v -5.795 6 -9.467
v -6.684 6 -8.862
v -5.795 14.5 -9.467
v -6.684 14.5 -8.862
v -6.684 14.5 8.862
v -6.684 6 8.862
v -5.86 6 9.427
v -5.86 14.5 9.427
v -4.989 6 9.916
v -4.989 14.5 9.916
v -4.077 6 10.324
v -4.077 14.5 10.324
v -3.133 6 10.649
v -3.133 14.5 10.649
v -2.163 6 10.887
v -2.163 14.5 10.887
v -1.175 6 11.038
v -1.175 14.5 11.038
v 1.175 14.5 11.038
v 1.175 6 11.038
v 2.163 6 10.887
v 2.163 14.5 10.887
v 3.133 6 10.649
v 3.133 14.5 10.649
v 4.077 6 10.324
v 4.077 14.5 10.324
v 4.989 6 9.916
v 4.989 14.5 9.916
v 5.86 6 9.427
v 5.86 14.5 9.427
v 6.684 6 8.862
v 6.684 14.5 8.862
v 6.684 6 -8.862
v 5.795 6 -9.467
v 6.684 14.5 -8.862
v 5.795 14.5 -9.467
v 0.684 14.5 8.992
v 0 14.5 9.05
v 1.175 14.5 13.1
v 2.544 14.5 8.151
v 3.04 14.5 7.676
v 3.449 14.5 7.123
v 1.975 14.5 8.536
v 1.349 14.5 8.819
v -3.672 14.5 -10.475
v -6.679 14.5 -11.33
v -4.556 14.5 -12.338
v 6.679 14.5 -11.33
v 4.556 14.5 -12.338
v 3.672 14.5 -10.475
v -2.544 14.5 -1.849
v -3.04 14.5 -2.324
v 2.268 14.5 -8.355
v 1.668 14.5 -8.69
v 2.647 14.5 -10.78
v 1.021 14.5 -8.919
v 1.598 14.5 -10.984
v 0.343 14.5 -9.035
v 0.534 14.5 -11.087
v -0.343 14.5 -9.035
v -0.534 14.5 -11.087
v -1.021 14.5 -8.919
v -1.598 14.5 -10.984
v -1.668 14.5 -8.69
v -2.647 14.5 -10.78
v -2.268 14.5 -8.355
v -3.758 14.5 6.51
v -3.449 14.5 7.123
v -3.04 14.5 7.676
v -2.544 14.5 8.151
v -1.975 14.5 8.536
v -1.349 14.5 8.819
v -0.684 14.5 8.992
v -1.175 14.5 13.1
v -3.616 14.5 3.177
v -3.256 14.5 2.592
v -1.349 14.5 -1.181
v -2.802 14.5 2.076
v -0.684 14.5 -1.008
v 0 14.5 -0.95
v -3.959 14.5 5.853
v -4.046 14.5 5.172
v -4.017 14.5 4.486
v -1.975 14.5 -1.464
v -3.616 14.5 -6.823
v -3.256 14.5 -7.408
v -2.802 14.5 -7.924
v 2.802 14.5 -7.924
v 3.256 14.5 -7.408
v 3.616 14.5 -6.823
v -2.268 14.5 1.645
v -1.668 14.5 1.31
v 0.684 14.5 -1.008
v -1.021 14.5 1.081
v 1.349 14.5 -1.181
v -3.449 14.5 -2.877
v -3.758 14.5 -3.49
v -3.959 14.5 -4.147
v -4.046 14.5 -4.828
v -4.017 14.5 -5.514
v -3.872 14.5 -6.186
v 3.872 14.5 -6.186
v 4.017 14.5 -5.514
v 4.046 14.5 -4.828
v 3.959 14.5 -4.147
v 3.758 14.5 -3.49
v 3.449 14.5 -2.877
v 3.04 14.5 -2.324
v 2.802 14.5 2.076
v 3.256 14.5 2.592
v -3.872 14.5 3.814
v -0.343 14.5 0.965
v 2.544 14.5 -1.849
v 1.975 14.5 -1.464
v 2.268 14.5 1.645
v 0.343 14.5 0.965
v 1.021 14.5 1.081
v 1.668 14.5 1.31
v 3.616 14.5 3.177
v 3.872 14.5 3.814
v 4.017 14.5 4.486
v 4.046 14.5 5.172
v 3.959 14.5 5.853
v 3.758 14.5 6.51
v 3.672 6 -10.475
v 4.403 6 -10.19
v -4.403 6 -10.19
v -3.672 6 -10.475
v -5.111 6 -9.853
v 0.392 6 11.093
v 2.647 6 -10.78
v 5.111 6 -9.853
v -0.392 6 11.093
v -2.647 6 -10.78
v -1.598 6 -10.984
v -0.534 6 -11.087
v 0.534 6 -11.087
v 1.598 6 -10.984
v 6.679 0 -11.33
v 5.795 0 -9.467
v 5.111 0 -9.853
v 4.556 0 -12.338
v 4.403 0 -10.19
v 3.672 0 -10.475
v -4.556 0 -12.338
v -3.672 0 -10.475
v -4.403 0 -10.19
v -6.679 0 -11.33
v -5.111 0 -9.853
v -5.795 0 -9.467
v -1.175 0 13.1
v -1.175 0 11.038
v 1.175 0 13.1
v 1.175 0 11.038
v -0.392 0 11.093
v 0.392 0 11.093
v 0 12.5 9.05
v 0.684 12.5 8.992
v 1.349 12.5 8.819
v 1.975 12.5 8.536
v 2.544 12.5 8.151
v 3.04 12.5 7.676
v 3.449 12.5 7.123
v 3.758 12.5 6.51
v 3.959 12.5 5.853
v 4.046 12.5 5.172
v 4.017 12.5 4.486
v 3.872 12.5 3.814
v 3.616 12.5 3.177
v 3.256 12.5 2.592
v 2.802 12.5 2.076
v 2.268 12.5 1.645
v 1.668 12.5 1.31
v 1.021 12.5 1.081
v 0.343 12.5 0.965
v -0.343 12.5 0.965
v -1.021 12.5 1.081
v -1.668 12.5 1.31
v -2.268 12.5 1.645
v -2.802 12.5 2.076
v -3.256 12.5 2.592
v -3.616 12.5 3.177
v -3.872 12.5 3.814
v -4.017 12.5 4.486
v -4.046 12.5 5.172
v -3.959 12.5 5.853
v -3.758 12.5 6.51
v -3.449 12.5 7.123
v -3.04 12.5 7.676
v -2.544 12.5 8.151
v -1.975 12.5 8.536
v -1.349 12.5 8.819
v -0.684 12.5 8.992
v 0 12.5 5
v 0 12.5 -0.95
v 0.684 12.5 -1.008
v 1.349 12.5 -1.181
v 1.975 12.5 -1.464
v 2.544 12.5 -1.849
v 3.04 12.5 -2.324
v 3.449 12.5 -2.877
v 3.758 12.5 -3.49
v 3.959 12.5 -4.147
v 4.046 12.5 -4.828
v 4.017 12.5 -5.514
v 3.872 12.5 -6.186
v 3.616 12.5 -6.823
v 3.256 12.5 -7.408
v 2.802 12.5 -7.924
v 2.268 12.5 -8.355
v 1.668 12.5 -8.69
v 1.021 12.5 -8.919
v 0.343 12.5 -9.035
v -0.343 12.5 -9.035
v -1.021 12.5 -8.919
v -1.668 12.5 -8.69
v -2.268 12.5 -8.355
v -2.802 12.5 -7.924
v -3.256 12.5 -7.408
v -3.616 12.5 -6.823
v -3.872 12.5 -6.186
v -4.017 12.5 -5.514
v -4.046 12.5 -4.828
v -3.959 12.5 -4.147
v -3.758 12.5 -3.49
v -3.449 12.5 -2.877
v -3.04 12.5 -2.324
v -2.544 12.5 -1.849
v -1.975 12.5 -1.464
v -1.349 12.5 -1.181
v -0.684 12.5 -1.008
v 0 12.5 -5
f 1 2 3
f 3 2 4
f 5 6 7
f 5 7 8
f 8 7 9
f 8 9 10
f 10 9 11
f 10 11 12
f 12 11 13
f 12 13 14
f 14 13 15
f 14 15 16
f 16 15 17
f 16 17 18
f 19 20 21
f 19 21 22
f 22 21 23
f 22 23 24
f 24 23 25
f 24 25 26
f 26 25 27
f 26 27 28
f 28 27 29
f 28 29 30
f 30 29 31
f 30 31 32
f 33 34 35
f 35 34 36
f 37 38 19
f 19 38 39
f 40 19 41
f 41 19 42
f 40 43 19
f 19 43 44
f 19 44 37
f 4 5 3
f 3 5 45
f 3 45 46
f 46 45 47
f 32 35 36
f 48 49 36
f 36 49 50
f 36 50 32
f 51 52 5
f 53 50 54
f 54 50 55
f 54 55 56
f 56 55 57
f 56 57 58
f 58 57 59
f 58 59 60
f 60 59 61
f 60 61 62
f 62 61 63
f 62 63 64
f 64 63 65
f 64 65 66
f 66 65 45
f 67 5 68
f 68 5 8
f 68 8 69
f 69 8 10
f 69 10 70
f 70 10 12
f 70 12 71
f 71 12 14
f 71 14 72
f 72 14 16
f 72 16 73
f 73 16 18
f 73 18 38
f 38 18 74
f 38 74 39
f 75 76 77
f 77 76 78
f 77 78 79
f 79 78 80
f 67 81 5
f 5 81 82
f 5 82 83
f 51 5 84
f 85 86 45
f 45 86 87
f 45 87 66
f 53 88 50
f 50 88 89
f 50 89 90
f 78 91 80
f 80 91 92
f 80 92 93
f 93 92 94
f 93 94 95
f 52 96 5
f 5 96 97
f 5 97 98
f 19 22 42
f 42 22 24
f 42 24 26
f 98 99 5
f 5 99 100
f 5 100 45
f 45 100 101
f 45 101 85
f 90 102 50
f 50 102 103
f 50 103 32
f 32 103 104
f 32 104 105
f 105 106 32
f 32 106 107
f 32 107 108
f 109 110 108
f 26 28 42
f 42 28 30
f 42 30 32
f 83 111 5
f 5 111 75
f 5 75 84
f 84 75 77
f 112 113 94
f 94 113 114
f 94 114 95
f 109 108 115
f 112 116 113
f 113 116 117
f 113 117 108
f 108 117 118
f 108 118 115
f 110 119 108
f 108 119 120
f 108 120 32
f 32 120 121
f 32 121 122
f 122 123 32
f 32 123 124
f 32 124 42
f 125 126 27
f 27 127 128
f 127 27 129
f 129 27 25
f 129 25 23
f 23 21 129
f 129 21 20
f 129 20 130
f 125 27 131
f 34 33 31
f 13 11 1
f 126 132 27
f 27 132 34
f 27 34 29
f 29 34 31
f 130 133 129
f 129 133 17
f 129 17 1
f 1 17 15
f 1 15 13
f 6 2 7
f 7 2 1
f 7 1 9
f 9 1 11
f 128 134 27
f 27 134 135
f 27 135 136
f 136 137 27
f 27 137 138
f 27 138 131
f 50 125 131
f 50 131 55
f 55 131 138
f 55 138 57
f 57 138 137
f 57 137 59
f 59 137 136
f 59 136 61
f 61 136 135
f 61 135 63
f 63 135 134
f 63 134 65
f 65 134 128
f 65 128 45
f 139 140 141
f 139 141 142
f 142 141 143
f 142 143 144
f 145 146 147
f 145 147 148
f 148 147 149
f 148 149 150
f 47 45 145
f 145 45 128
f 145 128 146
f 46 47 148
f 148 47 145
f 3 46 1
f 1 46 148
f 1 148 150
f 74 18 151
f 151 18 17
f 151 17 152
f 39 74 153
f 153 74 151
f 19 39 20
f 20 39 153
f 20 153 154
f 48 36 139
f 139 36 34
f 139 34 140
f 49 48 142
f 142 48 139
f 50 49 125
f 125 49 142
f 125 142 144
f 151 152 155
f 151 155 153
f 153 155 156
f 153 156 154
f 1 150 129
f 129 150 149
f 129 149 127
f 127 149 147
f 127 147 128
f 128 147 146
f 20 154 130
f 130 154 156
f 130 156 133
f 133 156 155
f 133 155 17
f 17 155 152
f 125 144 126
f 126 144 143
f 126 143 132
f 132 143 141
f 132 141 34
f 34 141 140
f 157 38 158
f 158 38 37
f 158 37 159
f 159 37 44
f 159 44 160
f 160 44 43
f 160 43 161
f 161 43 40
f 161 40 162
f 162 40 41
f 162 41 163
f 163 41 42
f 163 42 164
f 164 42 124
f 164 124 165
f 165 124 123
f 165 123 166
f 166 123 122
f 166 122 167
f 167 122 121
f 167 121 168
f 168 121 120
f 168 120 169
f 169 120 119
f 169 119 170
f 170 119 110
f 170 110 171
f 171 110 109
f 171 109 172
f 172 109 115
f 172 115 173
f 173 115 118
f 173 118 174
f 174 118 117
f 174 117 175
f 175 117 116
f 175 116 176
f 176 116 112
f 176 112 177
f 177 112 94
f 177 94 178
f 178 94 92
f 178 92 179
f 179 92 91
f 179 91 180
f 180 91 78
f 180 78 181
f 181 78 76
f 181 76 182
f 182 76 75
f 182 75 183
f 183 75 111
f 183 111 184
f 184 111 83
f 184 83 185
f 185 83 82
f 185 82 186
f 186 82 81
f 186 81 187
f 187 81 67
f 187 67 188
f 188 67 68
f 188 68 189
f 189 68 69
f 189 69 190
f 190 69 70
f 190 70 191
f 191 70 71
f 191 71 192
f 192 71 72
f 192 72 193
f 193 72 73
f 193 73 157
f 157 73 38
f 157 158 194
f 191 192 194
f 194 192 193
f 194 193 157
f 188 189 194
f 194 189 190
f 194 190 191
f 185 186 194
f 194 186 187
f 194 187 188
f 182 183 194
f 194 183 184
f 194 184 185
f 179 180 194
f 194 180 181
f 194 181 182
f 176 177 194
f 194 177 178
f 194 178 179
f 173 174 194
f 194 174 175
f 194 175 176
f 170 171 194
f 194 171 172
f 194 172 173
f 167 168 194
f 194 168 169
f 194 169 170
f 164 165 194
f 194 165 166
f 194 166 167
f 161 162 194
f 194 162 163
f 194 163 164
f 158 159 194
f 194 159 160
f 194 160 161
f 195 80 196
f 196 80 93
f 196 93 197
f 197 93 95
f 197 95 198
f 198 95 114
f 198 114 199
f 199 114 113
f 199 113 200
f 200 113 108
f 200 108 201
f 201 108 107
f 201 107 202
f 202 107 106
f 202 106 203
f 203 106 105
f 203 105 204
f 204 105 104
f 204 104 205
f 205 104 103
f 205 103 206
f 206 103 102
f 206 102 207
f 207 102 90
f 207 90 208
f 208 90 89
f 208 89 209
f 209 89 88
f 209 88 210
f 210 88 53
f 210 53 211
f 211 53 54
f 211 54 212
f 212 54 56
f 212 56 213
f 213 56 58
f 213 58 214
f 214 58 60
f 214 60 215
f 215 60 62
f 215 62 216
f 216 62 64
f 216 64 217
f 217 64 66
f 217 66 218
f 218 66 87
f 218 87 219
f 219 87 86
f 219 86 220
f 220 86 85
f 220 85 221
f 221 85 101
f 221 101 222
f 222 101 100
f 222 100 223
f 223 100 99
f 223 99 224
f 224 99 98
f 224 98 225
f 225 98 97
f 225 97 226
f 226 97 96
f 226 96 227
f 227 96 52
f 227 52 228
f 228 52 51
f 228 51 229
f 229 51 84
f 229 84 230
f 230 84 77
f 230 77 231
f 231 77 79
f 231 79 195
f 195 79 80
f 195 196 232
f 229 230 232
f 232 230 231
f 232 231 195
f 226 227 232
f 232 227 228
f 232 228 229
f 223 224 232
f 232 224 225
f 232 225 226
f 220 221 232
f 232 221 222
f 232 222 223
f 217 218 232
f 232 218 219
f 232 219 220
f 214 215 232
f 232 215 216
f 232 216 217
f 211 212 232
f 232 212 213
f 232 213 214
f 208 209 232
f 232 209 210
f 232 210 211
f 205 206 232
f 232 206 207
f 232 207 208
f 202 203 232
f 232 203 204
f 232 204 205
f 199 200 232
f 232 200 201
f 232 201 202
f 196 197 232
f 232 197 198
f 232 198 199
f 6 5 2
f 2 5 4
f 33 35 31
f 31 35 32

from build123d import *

# Parameters (mm, degrees)
BOSS_EXTRUDE2_DEPTH = 14.5
SKETCH3_R           = 11.1
CUT_EXTRUDE1_DEPTH  = 6
SKETCH5_R           = 4.05
CUT_EXTRUDE2_DEPTH  = 2
SKETCH6_W           = 4.420864072
SKETCH6_H           = 22.2
CUT_EXTRUDE4_DEPTH  = 23.47376248


with BuildPart() as part:
    # Sketch2 → Boss-Extrude2 (new body)
    with BuildSketch(Plane(origin=(0, 0, 0), x_dir=(1, 0, 0), z_dir=(0, 1, 0))):
        with BuildLine():
            Line((-5.794734139, 9.467367969), (-6.679135928, 11.330479613))
            Line((-6.679135928, 11.330479613), (-4.556179387, 12.33822736))
            Line((-4.556179387, 12.33822736), (-3.671777598, 10.475115716))
            ThreePointArc((-3.671777598, 10.475115716), (0, 11.1), (3.671777598, 10.475115716))
            Line((3.671777598, 10.475115716), (4.556179387, 12.33822736))
            Line((4.556179387, 12.33822736), (6.679135928, 11.330479613))
            Line((6.679135928, 11.330479613), (5.794734139, 9.467367969))
            ThreePointArc((5.794734139, 9.467367969), (10.828577002, -2.439655736), (1.175, -11.037634484))
            Line((1.175, -11.037634484), (1.175, -13.1))
            Line((1.175, -13.1), (-1.175, -13.1))
            Line((-1.175, -13.1), (-1.175, -11.037634484))
            ThreePointArc((-1.175, -11.037634484), (-10.828577002, -2.439655736), (-5.794734139, 9.467367969))
        make_face()
    extrude(amount=BOSS_EXTRUDE2_DEPTH)

    # Sketch3 → Cut-Extrude1 (cut)
    with BuildSketch(Plane.XZ):
        Circle(SKETCH3_R)
    extrude(amount=-CUT_EXTRUDE1_DEPTH, mode=Mode.SUBTRACT)

    # Sketch5 → Cut-Extrude2 (cut)
    with BuildSketch(Plane(origin=(0, 14.5, 0), x_dir=(1, 0, 0), z_dir=(0, 1, 0))):
        with Locations(Location((0, 5, 0), (0, 0, 270))):
            Circle(SKETCH5_R)
        with Locations(Location((0, -5, 0), (0, 0, 270))):
            Circle(SKETCH5_R)
    extrude(amount=-CUT_EXTRUDE2_DEPTH, mode=Mode.SUBTRACT)

    # Sketch6 → Cut-Extrude4 (cut, through all)
    with BuildSketch(Plane(origin=(0, 0, 0), x_dir=(1, 0, 0), z_dir=(0, 1, 0))):
        with Locations((8.894567964, 0)):
            Rectangle(SKETCH6_W, SKETCH6_H)
        with Locations((-8.894567964, 0)):
            Rectangle(SKETCH6_W, SKETCH6_H)
    extrude(amount=CUT_EXTRUDE4_DEPTH, mode=Mode.SUBTRACT)


solid = part.part
